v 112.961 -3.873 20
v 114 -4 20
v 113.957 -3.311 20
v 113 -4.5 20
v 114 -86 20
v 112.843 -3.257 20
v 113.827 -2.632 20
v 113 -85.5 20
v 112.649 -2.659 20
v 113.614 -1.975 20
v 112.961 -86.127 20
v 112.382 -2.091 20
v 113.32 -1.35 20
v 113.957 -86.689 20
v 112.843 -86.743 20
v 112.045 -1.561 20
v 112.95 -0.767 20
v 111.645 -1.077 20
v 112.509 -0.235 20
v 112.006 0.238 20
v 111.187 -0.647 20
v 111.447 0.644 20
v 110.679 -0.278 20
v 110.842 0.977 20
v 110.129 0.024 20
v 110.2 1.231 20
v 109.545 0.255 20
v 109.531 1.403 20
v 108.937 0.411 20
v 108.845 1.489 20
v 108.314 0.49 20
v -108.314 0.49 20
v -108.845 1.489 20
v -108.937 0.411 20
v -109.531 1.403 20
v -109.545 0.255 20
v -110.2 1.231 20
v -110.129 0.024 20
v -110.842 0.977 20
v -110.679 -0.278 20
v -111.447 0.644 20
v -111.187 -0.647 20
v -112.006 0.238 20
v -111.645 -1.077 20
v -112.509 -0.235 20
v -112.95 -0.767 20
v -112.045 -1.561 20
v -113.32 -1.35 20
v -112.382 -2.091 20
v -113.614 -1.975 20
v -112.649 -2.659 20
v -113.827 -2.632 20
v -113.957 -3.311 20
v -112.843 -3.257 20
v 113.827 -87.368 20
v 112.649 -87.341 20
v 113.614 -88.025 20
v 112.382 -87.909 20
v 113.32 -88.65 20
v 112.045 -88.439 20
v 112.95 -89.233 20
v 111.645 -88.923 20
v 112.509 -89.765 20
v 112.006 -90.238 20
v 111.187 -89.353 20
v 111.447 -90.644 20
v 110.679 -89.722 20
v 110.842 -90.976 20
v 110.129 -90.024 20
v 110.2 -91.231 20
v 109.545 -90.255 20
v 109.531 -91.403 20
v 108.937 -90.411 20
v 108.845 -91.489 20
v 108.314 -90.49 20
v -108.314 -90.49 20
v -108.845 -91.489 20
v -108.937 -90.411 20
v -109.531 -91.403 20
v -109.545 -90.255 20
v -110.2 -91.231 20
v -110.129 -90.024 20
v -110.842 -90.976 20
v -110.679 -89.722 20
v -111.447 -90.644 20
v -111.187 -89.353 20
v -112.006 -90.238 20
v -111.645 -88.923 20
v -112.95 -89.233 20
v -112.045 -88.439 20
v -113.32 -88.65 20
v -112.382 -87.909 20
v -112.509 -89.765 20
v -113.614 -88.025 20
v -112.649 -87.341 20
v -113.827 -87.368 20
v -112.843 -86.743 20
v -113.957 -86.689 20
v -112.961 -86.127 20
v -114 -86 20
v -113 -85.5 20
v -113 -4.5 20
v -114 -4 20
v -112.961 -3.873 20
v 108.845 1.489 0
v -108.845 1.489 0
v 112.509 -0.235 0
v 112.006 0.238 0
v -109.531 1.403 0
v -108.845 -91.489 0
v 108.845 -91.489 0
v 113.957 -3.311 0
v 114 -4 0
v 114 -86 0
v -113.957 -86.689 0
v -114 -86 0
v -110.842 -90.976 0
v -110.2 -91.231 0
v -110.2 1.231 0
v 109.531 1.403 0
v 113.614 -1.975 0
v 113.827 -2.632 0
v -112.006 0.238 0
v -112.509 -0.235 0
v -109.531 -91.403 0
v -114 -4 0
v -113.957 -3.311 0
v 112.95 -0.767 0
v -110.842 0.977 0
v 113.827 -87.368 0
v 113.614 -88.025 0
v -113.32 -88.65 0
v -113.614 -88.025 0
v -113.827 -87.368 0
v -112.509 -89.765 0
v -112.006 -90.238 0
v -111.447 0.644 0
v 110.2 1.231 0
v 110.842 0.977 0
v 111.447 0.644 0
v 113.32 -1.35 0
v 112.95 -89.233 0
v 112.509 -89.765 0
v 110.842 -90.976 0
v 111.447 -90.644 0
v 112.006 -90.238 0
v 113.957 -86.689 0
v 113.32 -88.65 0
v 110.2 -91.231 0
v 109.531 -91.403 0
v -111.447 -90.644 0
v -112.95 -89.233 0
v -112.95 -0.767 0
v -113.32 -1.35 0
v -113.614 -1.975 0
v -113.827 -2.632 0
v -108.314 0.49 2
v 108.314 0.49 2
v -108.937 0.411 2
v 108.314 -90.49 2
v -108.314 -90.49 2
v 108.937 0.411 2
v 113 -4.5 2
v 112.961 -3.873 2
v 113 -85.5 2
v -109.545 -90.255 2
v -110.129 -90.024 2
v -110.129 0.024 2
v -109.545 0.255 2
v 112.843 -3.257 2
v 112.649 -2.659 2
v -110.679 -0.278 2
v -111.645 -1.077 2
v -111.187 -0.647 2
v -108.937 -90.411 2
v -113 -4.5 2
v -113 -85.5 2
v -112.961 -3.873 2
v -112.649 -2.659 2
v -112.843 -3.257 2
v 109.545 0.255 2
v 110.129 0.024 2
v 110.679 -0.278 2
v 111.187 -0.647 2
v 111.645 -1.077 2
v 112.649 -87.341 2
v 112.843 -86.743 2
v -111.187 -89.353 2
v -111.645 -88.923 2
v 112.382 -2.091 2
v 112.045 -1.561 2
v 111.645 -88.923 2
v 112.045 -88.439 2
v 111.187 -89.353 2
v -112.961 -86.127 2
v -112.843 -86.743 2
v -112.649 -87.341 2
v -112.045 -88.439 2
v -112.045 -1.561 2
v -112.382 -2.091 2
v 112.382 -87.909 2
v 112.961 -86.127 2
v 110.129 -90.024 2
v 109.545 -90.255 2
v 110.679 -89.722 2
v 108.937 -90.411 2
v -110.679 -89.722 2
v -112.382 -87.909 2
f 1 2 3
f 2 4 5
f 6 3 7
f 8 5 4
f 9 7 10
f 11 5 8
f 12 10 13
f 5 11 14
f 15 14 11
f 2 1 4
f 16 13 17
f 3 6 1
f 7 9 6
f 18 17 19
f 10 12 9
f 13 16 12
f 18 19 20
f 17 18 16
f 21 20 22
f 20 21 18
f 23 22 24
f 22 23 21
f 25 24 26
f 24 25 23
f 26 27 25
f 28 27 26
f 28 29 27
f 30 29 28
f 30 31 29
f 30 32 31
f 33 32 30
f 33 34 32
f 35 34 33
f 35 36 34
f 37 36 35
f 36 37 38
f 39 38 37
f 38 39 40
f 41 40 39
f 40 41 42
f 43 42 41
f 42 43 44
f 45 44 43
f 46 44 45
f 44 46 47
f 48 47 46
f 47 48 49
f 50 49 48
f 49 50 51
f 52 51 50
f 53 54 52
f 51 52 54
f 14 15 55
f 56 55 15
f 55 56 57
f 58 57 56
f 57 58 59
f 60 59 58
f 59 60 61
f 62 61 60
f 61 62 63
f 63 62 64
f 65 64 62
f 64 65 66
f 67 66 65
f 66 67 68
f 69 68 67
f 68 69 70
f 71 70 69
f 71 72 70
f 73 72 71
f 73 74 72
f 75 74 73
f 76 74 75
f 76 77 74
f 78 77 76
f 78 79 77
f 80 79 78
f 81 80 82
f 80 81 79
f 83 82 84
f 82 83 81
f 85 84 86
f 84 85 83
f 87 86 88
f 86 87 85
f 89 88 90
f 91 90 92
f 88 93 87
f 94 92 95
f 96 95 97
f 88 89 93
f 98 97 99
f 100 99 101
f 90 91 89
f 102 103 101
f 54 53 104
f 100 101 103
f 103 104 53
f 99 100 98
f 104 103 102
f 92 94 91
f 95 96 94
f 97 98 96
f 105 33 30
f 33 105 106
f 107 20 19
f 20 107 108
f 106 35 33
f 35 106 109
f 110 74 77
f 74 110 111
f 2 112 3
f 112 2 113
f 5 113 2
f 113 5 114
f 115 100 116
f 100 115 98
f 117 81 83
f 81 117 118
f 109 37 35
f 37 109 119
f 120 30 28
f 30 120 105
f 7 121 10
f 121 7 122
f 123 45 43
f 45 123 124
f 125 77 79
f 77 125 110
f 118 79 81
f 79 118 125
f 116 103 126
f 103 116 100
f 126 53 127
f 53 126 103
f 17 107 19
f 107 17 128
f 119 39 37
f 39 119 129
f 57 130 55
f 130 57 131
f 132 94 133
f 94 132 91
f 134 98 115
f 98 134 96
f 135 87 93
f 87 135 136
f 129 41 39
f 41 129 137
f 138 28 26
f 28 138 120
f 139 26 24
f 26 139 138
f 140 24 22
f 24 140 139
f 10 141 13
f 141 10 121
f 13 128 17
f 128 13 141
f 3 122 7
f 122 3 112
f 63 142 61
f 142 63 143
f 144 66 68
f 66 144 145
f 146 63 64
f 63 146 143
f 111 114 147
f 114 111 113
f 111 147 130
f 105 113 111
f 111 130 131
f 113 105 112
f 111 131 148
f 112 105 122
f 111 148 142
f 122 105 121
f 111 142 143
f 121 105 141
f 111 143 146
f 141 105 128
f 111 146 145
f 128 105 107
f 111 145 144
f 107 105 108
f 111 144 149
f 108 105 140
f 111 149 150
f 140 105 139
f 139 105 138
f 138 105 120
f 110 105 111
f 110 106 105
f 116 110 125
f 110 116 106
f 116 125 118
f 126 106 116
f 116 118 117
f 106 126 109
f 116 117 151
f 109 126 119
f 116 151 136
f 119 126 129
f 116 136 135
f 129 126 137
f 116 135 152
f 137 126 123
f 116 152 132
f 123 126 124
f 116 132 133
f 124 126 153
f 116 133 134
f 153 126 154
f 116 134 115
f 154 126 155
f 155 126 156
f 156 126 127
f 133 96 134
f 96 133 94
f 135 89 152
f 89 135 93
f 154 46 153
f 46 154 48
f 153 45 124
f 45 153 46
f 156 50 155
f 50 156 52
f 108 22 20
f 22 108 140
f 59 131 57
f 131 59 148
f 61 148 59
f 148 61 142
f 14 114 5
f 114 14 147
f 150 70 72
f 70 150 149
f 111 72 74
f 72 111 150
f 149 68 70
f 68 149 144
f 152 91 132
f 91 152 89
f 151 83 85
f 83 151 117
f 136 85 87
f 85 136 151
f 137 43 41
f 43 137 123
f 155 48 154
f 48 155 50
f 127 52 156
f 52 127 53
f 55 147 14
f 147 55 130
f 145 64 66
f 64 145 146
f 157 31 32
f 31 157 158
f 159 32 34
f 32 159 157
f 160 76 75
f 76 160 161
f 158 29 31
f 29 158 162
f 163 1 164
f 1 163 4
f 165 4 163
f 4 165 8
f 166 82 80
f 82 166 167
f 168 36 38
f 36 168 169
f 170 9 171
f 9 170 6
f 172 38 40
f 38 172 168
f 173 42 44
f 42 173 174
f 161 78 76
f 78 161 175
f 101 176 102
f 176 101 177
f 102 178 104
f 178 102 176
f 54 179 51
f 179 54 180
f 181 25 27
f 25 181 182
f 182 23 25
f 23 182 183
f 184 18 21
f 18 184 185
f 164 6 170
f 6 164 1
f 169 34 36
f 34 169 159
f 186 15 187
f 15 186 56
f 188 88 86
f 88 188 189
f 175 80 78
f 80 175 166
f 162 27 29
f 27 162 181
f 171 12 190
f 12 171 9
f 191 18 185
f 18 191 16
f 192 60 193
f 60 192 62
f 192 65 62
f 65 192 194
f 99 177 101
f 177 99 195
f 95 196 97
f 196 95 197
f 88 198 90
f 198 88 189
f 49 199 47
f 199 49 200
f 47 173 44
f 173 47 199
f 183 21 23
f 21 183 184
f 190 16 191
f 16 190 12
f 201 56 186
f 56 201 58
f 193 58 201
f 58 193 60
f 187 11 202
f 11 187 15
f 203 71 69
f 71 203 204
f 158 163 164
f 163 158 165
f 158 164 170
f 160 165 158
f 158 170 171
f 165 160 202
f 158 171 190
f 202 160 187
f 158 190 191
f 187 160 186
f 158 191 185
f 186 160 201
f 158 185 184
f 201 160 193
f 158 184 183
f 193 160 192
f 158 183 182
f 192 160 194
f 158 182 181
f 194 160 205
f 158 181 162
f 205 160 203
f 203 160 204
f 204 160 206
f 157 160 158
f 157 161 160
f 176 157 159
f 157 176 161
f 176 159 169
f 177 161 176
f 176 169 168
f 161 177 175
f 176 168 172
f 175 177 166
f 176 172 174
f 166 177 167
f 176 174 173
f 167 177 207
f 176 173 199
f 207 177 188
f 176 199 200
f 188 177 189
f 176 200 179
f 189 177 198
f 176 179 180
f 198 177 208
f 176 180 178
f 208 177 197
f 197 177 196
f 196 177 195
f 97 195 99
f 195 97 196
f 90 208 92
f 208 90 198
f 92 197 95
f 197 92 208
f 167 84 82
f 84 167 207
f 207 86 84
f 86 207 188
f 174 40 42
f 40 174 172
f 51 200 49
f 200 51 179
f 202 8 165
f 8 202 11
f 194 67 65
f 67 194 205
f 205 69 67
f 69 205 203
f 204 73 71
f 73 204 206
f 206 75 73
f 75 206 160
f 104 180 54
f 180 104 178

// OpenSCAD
$fn = 50;


difference() {
	union() {
		translate(v = [0, -45.0000000000, 0]) {
			hull() {
				translate(v = [-108.5000000000, 41.0000000000, 0]) {
					cylinder(h = 20, r = 5.5000000000);
				}
				translate(v = [108.5000000000, 41.0000000000, 0]) {
					cylinder(h = 20, r = 5.5000000000);
				}
				translate(v = [-108.5000000000, -41.0000000000, 0]) {
					cylinder(h = 20, r = 5.5000000000);
				}
				translate(v = [108.5000000000, -41.0000000000, 0]) {
					cylinder(h = 20, r = 5.5000000000);
				}
			}
		}
	}
	union() {
		translate(v = [0, -45.0000000000, 2]) {
			hull() {
				translate(v = [-108.0000000000, 40.5000000000, 0]) {
					cylinder(h = 40, r = 5);
				}
				translate(v = [108.0000000000, 40.5000000000, 0]) {
					cylinder(h = 40, r = 5);
				}
				translate(v = [-108.0000000000, -40.5000000000, 0]) {
					cylinder(h = 40, r = 5);
				}
				translate(v = [108.0000000000, -40.5000000000, 0]) {
					cylinder(h = 40, r = 5);
				}
			}
		}
	}
}
